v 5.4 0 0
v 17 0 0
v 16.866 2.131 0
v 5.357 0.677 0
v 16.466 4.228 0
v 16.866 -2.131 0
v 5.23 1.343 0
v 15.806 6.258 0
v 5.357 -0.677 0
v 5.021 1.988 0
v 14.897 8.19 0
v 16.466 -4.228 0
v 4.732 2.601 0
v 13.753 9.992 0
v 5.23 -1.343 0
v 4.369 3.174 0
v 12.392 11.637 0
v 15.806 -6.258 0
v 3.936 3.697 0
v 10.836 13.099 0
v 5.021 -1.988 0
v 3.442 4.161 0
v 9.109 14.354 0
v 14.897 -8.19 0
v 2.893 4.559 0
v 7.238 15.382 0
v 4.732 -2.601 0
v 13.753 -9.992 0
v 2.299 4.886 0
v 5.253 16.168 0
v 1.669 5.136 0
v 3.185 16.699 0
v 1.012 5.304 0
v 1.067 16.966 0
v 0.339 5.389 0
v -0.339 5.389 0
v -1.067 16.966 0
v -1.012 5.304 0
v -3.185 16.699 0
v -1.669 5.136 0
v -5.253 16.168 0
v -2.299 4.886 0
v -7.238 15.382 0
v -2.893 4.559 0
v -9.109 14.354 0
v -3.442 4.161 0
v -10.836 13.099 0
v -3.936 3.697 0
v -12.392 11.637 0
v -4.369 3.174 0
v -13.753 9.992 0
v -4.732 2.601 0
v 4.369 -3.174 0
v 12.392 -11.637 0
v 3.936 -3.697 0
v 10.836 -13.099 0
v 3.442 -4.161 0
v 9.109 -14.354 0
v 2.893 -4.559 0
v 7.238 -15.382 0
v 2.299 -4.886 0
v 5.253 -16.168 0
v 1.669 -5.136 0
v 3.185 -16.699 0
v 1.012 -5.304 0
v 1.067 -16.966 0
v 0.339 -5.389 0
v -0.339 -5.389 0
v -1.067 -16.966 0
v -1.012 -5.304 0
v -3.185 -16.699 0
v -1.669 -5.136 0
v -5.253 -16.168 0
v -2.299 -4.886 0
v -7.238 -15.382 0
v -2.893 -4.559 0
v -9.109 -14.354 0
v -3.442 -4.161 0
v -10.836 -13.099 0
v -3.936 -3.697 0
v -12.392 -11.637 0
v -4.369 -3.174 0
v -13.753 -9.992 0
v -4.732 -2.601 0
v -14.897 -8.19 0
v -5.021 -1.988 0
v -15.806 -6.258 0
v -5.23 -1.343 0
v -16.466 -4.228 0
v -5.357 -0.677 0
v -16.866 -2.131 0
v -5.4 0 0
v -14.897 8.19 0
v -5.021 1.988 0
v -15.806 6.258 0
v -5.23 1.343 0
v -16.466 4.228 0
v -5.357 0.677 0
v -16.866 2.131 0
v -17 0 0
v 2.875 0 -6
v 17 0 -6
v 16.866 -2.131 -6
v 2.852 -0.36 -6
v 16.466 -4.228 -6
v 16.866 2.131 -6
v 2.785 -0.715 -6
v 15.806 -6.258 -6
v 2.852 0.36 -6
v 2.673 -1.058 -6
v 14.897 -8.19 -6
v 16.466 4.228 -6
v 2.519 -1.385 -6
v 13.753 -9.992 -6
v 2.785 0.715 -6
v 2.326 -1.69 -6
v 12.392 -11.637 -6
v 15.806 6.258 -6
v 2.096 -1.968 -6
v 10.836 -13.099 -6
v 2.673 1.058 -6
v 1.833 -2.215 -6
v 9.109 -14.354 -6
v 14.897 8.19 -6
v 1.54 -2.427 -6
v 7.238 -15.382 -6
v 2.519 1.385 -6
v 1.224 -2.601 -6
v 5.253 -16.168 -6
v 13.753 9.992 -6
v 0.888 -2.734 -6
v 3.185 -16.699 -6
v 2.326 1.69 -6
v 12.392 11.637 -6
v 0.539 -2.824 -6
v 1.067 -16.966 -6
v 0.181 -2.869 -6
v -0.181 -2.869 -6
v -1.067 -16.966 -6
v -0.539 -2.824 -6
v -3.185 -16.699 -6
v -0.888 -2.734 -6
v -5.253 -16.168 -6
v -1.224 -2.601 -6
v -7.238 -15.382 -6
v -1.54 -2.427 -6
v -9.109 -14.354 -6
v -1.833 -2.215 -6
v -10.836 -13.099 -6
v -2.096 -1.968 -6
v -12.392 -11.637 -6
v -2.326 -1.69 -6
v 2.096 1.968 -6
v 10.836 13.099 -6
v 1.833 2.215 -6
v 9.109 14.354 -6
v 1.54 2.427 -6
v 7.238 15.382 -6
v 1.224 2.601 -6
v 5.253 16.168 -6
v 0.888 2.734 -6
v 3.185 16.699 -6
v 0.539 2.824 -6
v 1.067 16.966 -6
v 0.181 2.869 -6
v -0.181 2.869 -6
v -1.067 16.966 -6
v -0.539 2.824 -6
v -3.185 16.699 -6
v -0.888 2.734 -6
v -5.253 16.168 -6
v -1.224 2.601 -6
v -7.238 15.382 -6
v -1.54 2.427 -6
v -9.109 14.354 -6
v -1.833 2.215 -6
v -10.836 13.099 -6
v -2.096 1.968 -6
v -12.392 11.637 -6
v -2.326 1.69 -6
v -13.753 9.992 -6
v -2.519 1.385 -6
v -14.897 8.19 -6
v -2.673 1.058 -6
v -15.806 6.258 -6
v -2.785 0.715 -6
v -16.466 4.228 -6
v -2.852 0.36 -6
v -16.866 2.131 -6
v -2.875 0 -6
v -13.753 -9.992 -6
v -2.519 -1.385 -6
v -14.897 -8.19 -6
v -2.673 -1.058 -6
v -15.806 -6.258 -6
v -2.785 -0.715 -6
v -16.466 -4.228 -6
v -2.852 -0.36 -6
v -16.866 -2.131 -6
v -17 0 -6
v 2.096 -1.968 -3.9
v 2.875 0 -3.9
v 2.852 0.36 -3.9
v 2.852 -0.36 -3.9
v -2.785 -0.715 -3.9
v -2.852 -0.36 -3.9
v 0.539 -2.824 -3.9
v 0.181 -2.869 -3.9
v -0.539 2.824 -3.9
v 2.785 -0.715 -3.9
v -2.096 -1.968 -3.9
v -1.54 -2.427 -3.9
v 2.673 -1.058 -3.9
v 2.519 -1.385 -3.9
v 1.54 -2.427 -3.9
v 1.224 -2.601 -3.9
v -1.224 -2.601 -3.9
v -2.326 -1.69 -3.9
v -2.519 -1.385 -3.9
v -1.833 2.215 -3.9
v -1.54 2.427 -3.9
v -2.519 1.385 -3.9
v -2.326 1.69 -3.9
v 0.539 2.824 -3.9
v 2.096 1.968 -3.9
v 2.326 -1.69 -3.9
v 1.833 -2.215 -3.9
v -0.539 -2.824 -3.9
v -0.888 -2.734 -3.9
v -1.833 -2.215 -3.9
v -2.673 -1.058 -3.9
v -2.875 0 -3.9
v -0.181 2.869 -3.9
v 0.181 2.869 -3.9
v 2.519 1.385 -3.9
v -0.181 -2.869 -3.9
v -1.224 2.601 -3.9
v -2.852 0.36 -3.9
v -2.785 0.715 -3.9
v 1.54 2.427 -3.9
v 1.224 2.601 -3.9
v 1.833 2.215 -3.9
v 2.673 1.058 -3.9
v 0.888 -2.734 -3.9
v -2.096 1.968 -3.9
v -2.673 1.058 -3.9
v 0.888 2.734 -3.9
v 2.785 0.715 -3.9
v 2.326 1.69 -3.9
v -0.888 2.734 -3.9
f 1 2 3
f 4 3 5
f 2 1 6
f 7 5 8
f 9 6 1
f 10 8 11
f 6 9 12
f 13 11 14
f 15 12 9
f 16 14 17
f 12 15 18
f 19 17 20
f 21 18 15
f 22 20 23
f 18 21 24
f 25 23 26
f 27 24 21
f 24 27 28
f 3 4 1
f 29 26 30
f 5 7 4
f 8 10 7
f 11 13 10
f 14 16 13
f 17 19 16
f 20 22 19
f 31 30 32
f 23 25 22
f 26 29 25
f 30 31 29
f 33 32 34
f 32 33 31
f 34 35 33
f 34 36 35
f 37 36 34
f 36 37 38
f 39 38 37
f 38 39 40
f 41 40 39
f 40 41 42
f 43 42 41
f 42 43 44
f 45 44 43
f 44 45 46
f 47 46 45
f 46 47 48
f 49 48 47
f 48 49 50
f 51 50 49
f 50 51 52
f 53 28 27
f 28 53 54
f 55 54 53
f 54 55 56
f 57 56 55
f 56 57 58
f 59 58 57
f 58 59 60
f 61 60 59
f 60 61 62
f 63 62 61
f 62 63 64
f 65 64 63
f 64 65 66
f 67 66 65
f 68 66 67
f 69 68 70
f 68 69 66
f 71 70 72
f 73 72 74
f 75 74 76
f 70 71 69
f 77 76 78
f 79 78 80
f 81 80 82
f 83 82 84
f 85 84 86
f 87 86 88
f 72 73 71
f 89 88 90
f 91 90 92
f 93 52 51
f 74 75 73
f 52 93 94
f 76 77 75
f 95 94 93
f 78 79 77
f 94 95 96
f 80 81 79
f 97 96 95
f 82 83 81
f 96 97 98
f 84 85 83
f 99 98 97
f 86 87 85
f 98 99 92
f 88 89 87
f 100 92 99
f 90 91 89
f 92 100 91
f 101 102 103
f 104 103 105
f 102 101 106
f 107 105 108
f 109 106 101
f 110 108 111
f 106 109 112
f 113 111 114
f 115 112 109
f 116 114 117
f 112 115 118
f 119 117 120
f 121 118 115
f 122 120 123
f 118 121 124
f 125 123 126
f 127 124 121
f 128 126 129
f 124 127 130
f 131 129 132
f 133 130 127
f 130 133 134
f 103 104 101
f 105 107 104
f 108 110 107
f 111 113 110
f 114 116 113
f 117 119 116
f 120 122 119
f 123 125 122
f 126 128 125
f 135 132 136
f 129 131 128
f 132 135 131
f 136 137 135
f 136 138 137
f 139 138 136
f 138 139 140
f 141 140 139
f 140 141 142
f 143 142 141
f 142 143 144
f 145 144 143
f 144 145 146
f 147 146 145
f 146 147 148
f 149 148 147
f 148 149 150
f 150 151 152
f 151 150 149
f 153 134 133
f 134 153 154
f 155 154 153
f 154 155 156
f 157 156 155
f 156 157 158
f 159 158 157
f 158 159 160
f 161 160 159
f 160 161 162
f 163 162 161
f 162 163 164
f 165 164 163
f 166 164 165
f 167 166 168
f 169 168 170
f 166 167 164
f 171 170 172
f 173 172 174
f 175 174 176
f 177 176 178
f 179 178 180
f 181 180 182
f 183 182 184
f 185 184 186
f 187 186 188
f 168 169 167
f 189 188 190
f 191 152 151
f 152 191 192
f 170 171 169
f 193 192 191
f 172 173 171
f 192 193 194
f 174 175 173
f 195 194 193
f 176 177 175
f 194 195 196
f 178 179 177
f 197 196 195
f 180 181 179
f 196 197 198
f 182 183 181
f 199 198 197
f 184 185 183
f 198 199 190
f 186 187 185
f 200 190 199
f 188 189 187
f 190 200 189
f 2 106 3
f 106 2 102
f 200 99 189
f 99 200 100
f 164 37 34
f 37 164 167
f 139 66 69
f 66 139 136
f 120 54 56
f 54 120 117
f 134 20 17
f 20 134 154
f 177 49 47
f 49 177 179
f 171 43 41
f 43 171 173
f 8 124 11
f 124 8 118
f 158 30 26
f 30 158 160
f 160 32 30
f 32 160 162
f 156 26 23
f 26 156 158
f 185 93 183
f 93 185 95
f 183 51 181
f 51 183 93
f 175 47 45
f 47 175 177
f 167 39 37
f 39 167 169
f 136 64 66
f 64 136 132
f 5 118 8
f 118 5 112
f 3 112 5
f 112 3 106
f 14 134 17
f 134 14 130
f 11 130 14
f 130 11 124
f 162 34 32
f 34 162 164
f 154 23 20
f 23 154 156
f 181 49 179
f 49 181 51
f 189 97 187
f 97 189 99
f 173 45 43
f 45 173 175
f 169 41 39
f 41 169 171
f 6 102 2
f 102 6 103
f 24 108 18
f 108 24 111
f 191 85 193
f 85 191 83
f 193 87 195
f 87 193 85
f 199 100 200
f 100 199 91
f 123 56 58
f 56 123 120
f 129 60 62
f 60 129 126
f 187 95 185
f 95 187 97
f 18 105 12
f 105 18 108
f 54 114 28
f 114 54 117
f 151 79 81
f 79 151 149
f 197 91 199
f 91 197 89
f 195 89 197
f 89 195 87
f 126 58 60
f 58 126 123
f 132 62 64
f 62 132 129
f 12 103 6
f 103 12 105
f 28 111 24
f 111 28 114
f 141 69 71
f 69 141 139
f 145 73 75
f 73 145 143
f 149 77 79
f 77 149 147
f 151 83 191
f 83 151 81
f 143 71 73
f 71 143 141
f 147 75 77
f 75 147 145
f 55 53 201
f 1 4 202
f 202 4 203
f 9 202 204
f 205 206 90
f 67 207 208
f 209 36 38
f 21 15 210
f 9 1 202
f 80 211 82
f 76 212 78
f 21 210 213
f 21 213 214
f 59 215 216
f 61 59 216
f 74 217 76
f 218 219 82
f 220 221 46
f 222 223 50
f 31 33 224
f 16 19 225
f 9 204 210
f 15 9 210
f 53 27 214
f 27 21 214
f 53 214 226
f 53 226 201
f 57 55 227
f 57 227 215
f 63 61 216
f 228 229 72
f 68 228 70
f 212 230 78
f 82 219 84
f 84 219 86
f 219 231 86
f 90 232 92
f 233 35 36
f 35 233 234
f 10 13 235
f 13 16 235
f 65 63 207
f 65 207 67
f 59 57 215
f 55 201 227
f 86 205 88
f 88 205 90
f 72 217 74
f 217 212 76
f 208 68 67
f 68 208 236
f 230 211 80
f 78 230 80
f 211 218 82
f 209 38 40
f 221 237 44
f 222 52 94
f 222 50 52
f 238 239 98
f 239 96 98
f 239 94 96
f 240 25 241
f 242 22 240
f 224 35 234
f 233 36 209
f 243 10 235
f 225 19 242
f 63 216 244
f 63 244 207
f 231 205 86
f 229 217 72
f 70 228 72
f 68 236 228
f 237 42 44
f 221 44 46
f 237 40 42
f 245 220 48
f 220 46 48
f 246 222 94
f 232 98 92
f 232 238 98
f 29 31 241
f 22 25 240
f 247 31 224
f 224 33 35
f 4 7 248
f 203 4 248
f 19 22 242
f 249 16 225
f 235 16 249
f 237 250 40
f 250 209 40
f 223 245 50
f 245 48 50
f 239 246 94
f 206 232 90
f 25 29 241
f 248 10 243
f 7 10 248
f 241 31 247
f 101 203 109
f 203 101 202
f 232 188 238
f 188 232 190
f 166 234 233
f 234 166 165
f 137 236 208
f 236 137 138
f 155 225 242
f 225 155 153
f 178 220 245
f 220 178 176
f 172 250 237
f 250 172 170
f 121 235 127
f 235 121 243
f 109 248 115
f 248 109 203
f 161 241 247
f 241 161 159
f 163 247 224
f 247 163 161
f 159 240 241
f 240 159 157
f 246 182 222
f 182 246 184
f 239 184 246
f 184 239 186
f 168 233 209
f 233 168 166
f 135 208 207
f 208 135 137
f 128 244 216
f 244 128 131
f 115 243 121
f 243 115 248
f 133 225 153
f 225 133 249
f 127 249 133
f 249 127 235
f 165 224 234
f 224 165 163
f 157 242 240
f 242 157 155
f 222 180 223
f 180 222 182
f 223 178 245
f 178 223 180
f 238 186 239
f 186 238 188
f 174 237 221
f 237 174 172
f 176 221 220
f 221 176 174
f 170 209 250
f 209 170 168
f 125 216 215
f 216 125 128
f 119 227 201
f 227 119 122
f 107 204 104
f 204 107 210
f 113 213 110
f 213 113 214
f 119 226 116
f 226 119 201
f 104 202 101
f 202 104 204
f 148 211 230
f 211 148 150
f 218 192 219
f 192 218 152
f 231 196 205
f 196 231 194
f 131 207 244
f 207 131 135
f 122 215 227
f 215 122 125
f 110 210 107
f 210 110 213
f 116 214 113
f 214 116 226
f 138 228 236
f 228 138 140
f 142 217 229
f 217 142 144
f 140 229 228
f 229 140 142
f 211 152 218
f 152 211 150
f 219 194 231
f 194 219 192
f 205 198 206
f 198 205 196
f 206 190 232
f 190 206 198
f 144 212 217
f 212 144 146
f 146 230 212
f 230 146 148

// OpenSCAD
$fn = 50;


difference() {
	union() {
		translate(v = [0, 0, -6.0000000000]) {
			cylinder(h = 6, r = 7.0000000000);
		}
		translate(v = [0, 0, -6.0000000000]) {
			cylinder(h = 6, r = 17.0000000000);
		}
	}
	union() {
		translate(v = [0, 0, 0]) {
			rotate(a = [0, 0, 0]) {
				difference() {
					union() {
						#translate(v = [0, 0, -6.0000000000]) {
							cylinder(h = 6, r = 2.6000000000);
						}
						#translate(v = [0, 0, -3.9000000000]) {
							cylinder(h = 3.9000000000, r = 7.0000000000, r1 = 2.8750000000, r2 = 5.4000000000);
						}
						#translate(v = [0, 0, -6.0000000000]) {
							cylinder(h = 6, r = 2.8750000000);
						}
						#translate(v = [0, 0, -6.0000000000]) {
							cylinder(h = 6, r = 2.6000000000);
						}
					}
					union();
				}
			}
		}
	}
}
